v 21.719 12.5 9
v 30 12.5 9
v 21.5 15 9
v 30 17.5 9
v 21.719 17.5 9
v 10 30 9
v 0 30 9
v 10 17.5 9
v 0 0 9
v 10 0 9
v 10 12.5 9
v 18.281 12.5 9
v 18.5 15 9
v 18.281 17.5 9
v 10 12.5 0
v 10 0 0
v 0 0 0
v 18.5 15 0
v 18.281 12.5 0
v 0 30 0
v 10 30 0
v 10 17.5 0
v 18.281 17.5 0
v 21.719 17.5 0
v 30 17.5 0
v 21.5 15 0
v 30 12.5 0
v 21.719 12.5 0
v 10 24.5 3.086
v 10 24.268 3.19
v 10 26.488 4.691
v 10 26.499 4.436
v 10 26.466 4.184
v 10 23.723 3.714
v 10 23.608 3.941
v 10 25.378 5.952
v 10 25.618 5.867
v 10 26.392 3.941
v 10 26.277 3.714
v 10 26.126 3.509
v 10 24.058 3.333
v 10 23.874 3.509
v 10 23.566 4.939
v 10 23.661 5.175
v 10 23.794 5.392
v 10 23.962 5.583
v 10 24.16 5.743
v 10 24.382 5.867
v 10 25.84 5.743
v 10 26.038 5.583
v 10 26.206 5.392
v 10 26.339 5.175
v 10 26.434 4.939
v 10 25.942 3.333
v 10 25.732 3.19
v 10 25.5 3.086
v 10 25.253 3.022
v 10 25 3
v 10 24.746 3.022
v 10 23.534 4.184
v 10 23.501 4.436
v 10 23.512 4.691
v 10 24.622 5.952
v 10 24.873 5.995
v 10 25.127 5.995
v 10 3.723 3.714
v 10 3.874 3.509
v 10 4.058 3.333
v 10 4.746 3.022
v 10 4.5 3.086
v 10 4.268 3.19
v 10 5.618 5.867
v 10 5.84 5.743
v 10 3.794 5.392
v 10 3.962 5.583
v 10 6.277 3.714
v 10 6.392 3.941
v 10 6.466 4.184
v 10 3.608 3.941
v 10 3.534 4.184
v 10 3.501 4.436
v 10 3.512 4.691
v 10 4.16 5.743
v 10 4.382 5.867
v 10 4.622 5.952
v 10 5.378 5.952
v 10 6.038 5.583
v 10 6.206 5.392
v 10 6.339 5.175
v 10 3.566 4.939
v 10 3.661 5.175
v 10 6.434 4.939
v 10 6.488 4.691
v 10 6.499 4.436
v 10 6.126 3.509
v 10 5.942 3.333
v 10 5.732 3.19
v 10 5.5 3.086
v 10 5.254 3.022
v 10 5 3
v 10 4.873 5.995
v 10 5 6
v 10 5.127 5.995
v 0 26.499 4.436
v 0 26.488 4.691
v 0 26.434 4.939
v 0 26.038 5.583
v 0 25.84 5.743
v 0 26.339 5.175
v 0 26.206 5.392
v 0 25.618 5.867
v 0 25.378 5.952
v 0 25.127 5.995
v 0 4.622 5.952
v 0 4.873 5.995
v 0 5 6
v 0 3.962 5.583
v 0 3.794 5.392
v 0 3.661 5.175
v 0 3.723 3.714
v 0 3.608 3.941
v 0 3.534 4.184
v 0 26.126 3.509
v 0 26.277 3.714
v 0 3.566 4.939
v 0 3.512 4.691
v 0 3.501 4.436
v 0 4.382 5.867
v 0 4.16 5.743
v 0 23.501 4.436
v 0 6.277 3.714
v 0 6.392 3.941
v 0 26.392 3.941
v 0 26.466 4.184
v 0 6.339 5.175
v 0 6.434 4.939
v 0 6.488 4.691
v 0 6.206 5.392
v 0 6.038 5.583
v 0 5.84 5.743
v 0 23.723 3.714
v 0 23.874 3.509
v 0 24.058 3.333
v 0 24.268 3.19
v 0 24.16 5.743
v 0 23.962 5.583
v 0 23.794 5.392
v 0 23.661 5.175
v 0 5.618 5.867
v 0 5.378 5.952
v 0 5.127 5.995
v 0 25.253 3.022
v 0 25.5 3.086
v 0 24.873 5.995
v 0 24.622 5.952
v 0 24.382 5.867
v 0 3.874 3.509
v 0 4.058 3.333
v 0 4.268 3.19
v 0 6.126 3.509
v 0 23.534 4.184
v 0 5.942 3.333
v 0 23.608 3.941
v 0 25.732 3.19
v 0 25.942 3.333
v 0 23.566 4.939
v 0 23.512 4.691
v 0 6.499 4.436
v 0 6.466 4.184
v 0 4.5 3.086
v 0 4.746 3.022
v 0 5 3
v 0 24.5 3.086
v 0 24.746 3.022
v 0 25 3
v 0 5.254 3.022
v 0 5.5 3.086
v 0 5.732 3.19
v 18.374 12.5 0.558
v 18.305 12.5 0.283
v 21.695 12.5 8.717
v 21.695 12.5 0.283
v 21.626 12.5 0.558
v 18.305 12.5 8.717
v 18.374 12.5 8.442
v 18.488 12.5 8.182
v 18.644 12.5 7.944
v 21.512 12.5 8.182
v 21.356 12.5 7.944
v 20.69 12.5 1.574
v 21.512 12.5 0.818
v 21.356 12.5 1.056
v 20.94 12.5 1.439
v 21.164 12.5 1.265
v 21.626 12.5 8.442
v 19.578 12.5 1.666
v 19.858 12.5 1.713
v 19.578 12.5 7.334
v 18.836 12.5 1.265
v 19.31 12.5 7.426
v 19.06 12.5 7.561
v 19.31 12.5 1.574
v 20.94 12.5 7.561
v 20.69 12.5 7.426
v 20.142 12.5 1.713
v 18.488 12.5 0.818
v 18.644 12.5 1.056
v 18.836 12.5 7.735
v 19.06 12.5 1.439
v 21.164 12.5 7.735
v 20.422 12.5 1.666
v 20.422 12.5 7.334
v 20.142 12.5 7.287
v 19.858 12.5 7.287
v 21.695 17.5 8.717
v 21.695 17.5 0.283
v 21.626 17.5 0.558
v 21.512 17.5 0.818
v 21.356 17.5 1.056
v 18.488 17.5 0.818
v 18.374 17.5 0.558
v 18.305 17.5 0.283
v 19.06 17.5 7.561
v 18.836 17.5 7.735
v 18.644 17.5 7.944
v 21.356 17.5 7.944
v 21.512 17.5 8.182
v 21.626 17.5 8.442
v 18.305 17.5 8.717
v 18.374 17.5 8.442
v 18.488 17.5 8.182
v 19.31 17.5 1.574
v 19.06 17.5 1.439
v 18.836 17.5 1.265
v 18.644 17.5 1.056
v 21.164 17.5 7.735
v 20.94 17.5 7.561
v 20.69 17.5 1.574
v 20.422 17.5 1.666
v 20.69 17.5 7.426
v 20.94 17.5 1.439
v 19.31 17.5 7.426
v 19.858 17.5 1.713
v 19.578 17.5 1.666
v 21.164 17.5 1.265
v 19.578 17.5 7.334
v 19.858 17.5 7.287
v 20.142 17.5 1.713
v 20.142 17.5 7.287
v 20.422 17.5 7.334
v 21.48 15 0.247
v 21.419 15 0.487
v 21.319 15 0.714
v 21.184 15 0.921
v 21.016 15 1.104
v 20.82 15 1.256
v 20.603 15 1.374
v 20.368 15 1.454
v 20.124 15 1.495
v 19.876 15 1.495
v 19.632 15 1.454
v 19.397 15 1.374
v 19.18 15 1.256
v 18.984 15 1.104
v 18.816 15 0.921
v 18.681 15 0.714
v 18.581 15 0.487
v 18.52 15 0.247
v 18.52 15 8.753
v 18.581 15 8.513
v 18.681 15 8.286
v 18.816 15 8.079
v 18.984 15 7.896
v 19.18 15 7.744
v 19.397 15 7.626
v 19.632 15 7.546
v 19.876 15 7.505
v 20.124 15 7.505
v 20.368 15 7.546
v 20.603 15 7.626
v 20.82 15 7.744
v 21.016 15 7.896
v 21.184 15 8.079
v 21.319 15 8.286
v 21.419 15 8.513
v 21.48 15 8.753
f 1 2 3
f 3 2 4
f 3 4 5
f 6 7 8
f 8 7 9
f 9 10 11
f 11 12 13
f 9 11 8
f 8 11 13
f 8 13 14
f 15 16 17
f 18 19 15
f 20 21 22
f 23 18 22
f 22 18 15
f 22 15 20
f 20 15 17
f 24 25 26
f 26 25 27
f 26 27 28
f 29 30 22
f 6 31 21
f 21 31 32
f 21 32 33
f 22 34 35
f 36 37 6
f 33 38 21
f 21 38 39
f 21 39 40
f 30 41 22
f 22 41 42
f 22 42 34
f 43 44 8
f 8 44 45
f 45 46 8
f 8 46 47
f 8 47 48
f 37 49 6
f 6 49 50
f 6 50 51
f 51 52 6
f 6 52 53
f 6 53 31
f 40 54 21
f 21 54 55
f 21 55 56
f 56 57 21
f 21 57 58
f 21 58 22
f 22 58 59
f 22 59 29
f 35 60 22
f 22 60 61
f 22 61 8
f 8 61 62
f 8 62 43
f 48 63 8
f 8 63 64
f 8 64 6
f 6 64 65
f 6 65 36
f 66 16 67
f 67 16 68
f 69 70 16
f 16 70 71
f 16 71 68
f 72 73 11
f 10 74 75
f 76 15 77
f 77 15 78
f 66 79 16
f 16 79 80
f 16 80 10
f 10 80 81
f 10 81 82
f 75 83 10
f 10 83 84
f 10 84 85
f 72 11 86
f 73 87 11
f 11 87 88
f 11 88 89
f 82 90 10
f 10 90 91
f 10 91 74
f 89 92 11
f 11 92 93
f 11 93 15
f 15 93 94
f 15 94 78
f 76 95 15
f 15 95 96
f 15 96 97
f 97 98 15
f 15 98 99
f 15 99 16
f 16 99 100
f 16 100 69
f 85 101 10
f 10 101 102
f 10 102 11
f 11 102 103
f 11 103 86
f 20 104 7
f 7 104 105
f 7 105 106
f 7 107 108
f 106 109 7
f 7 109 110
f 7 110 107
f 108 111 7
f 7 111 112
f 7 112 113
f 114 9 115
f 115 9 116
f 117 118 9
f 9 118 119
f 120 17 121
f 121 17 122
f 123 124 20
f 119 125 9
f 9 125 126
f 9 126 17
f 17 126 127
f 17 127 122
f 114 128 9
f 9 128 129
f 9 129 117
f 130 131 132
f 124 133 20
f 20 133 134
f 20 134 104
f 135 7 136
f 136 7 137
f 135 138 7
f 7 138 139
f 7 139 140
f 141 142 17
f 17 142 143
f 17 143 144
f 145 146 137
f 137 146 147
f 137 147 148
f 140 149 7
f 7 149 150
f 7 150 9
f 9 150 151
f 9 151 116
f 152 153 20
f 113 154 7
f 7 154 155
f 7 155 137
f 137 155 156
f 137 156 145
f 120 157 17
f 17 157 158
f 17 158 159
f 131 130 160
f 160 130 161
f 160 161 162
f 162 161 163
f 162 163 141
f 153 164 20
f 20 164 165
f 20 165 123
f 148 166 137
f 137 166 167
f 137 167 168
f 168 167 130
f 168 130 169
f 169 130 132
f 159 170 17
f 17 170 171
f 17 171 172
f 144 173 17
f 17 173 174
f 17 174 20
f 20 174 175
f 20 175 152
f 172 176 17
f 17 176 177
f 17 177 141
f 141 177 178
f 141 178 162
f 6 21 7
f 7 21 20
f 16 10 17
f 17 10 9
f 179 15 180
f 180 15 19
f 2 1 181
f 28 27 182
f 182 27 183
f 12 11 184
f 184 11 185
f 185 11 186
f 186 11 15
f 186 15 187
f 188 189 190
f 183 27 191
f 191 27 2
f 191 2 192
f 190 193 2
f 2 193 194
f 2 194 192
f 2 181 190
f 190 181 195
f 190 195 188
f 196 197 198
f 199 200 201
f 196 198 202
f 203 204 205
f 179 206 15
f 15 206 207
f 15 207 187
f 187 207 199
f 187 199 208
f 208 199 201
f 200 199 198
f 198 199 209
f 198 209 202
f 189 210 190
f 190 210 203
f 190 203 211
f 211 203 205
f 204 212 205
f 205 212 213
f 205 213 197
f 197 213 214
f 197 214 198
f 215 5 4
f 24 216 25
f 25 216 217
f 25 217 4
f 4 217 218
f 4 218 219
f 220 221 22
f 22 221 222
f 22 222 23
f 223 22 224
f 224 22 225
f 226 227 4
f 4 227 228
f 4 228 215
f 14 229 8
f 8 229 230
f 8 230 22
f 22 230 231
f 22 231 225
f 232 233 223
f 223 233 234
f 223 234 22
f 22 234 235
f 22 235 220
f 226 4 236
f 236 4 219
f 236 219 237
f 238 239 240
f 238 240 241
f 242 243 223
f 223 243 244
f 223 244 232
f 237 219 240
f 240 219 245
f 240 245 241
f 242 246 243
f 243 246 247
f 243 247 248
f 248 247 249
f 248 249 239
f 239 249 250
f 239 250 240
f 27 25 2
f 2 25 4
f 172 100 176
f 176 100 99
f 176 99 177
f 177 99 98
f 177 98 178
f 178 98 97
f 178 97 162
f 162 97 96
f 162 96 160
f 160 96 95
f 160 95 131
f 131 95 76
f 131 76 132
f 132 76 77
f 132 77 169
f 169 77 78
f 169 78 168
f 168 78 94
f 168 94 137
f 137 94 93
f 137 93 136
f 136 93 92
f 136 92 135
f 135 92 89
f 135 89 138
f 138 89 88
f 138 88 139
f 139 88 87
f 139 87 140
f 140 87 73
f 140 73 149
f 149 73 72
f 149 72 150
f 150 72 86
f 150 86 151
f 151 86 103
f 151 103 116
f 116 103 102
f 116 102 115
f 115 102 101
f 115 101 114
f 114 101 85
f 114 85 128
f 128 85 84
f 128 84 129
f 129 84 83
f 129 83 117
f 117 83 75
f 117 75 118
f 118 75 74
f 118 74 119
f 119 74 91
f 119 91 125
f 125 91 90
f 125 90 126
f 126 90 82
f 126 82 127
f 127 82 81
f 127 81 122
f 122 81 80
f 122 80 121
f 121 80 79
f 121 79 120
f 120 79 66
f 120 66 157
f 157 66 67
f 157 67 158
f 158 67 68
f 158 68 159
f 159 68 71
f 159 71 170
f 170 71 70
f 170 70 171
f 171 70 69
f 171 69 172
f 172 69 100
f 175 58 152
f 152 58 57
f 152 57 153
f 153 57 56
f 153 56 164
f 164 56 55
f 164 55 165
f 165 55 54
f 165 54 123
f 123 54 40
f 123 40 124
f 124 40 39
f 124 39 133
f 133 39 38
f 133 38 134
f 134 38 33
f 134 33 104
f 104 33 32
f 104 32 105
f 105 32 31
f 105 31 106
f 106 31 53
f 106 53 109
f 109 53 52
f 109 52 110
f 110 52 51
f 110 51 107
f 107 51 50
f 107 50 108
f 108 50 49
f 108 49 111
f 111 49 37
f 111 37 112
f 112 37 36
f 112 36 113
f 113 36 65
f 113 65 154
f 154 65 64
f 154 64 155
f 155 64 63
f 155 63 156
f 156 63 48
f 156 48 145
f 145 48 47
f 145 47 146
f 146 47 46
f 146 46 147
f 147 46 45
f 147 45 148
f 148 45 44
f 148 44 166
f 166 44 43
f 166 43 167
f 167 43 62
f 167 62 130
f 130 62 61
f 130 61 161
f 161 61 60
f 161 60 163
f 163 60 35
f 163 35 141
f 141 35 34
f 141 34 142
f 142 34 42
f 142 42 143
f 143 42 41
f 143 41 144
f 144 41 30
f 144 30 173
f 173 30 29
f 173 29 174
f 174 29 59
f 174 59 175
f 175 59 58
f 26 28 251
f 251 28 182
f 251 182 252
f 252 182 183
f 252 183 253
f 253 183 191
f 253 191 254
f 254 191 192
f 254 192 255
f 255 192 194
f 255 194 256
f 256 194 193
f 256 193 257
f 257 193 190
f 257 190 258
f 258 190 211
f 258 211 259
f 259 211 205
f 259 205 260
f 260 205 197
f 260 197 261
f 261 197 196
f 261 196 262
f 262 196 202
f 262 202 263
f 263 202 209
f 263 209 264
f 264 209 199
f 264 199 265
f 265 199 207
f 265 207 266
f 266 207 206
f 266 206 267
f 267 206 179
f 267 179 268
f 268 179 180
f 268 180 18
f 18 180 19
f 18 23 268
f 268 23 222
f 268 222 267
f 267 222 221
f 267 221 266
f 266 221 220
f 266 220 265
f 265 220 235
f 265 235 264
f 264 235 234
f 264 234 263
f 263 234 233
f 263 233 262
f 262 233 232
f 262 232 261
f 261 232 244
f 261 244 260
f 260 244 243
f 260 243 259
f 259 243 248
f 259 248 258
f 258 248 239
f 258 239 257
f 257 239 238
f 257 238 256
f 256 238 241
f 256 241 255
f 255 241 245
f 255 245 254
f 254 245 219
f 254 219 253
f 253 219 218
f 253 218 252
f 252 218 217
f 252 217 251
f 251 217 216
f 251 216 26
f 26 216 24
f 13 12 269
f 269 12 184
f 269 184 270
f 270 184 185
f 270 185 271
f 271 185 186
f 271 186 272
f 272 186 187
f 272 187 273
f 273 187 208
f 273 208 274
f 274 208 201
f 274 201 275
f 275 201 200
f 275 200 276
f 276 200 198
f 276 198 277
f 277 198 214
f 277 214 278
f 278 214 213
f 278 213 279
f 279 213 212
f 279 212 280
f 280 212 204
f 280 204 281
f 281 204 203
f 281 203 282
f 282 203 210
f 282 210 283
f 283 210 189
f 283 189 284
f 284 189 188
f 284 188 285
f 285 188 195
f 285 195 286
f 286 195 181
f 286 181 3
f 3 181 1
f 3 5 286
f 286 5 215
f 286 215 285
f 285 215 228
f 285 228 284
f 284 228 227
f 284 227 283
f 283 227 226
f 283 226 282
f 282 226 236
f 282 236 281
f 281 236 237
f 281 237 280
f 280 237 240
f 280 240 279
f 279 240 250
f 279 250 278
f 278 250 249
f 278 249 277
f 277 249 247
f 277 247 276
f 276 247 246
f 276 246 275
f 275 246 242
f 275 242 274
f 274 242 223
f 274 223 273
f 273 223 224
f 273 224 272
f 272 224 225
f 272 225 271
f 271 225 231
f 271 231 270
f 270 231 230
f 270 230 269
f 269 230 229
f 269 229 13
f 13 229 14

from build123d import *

# Parameters (mm, degrees)
SKETCH1_W           = 10
SKETCH1_H           = 9
BOSS_EXTRUDE1_DEPTH = 30
SKETCH2_W           = 9
SKETCH2_H           = 5
BOSS_EXTRUDE2_DEPTH = 20
SKETCH3_R           = 1.5
CUT_EXTRUDE1_DEPTH  = 38.161808352


# Read off the part's stored shape, not the designer's step: Cut-Extrude2
with BuildPart() as part:
    # Sketch1 → Boss-Extrude1 (new body)
    with BuildSketch(Plane(origin=(0, 0, 0), x_dir=(1, 0, 0), z_dir=(0, 1, 0))):
        with Locations((5, -4.5)):
            Rectangle(SKETCH1_W, SKETCH1_H)
    extrude(amount=BOSS_EXTRUDE1_DEPTH)

    # Sketch2 → Boss-Extrude2 (add)
    with BuildSketch(Plane(origin=(10, 0, 0), x_dir=(0, 0, -1), z_dir=(1, 0, 0))):
        with Locations((-4.5, 15)):
            Rectangle(SKETCH2_W, SKETCH2_H)
    extrude(amount=BOSS_EXTRUDE2_DEPTH)

    # Sketch3 → Cut-Extrude1 (cut, through all)
    with BuildSketch(Plane(origin=(10, 0, 0), x_dir=(0, 0, -1), z_dir=(1, 0, 0))):
        with Locations((-4.5, 25)):
            Circle(SKETCH3_R)
        with Locations(Location((-4.5, 5, 0), (0, 0, 180))):
            Circle(SKETCH3_R)
    extrude(amount=-CUT_EXTRUDE1_DEPTH, mode=Mode.SUBTRACT)

    # Cut-Extrude2 outline → Cut-Extrude2 (revolve, cut)
    with BuildSketch(Plane(origin=(20, 0, 0), x_dir=(1, 0, 0), z_dir=(0, 0, 1))):
        Polygon((1.718721659, 12.5), (1.5, 15), (1.718721659, 17.5), (0, 17.5), (0, 12.5), align=None)
    cut_extrude2 = revolve(axis=Axis((20, 0, 0), (0, 1, 0)), mode=Mode.SUBTRACT)

    # Mirror1: Cut-Extrude2 across plane
    add(cut_extrude2.mirror(Plane.XY.offset(4.5)), mode=Mode.SUBTRACT)


solid = part.part
